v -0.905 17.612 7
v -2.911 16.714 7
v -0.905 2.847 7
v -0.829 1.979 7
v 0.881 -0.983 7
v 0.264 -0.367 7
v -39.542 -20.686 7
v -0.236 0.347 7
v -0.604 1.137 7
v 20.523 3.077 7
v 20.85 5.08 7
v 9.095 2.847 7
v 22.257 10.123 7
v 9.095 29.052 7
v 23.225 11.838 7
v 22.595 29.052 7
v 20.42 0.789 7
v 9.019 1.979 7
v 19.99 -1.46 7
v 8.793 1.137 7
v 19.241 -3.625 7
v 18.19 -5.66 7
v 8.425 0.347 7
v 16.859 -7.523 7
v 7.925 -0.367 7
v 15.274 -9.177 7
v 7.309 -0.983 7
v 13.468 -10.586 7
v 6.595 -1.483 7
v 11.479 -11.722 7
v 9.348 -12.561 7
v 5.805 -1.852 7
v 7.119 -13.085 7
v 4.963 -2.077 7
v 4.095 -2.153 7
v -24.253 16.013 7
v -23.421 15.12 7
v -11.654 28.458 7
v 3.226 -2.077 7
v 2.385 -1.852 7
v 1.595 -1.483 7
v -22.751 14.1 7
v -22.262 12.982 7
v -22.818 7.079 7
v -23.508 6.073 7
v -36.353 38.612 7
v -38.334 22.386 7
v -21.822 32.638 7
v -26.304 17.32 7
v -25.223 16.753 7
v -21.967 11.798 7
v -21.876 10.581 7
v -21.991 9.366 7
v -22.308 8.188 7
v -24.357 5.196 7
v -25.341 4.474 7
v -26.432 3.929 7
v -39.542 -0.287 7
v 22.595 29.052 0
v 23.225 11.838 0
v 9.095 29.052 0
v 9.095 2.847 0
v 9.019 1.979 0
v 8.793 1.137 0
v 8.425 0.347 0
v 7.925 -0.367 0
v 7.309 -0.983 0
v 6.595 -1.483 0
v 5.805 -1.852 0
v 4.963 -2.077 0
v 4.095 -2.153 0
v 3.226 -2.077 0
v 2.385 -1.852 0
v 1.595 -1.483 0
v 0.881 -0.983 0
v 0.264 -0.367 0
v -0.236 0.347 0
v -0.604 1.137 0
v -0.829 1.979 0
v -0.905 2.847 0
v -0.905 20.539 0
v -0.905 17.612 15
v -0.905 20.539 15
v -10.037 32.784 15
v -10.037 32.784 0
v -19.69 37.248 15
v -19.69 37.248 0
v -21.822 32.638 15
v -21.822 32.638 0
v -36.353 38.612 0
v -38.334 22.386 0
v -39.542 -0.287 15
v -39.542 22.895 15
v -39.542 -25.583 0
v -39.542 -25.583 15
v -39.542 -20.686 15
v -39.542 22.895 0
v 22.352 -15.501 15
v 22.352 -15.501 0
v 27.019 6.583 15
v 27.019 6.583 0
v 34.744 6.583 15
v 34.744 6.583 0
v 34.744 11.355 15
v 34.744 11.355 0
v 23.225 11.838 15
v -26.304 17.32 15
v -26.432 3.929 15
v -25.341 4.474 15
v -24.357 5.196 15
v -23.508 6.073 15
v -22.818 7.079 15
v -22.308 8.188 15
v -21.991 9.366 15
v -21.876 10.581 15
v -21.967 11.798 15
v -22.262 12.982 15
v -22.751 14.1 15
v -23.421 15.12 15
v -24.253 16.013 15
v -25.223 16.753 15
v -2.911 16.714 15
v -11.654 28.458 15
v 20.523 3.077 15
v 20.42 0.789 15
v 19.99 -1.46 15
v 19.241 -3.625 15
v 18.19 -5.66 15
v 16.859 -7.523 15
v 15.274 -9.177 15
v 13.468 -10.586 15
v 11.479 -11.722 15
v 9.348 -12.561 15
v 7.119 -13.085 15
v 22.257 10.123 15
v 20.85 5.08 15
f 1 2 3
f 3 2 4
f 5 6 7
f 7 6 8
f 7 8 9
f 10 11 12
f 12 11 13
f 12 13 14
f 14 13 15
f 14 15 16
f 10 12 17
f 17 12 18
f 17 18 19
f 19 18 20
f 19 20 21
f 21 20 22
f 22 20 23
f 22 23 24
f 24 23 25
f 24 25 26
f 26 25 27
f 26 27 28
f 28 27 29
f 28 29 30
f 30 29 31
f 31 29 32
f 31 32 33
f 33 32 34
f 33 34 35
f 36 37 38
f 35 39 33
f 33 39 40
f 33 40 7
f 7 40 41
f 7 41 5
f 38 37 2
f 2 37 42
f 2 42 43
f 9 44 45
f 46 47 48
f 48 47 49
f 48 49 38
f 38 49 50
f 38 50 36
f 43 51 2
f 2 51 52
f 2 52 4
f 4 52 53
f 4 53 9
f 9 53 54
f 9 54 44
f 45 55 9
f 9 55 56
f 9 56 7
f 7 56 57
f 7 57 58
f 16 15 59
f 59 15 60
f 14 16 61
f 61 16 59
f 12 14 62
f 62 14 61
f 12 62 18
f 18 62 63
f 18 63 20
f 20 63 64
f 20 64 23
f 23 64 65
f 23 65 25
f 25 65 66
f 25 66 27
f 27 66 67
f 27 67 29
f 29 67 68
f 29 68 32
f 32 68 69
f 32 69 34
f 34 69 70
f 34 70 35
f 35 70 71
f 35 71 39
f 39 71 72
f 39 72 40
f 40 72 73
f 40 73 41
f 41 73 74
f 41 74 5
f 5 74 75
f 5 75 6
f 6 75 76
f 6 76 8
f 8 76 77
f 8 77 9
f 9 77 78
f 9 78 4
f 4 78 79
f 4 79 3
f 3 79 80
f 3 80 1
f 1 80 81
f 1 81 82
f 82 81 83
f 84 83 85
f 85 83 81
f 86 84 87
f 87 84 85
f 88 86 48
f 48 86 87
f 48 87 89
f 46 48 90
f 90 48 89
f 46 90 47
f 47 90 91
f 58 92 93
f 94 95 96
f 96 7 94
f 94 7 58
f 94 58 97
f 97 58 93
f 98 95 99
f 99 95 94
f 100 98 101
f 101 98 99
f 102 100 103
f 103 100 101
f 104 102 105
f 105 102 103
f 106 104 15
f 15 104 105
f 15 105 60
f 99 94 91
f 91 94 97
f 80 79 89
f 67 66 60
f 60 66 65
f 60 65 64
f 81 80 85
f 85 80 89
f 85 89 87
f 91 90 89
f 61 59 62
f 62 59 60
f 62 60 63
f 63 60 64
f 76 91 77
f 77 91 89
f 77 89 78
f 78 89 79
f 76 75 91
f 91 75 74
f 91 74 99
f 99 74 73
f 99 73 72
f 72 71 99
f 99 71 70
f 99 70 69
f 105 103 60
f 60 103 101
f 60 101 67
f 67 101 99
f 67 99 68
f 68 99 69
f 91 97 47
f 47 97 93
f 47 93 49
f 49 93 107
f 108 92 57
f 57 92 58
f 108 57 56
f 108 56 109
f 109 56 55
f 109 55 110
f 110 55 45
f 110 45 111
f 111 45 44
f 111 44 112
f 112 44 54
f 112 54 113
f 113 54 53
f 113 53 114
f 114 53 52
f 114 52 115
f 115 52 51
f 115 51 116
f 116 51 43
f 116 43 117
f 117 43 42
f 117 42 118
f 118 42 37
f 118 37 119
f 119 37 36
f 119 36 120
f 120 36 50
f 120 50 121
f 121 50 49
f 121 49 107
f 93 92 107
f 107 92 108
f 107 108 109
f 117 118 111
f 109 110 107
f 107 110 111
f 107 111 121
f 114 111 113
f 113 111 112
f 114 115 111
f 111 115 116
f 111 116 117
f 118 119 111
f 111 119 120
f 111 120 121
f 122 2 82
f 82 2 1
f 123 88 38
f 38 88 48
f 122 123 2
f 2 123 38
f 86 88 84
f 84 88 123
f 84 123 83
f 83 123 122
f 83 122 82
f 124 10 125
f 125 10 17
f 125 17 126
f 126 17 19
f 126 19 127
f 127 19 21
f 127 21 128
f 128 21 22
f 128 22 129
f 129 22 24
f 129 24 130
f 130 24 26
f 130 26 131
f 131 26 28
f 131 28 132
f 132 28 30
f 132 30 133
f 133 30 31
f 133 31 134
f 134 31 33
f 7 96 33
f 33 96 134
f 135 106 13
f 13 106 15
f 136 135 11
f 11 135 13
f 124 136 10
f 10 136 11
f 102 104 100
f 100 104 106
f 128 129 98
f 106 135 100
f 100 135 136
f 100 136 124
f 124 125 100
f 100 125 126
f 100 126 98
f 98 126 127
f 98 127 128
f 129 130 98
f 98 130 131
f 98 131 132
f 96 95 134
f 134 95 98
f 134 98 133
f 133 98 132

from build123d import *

# Parameters (mm, degrees)
BOSS_EXTRUDE2_DEPTH = 7
BOSS_EXTRUDE3_DEPTH = 15


with BuildPart() as part:
    # Sketch1 → Boss-Extrude2 (new body)
    with BuildSketch(Plane.XY):
        with BuildLine():
            Line((-39.542433315, -25.583271541), (22.35186865, -15.501296132))
            Line((22.35186865, -15.501296132), (27.018997021, 6.583034036))
            Line((27.018997021, 6.583034036), (34.744303123, 6.583034036))
            Line((34.744303123, 6.583034036), (34.744303123, 11.354641566))
            Line((34.744303123, 11.354641566), (23.2245968, 11.838054321))
            Line((23.2245968, 11.838054321), (22.594616957, 29.052034329))
            Line((22.594616957, 29.052034329), (9.094616957, 29.052034329))
            Line((9.094616957, 29.052034329), (9.094616957, 2.846901584))
            ThreePointArc((9.094616957, 2.846901584), (4.094616957, -2.153098416), (-0.905383043, 2.846901584))
            Line((-0.905383043, 2.846901584), (-0.905383043, 20.539136331))
            Line((-0.905383043, 20.539136331), (-10.036820206, 32.783811613))
            Line((-10.036820206, 32.783811613), (-19.690097484, 37.247946124))
            Line((-19.690097484, 37.247946124), (-21.821876557, 32.638171386))
            Line((-21.821876557, 32.638171386), (-36.353312831, 38.611972459))
            Line((-36.353312831, 38.611972459), (-39.542433315, 12.487268255))
            Line((-39.542433315, 12.487268255), (-39.542433315, -25.583271541))
        make_face()
    extrude(amount=BOSS_EXTRUDE2_DEPTH)

    # Sketch1<7> → Boss-Extrude3 (add)
    with BuildSketch(Plane.XY):
        with BuildLine():
            ThreePointArc((-2.910814831, 16.713787882), (-1.923594587, 17.19744001), (-0.905383043, 17.611889578))
            Line((-0.905383043, 17.611889578), (-0.905383043, 20.539136331))
            Line((-0.905383043, 20.539136331), (-10.036820206, 32.783811613))
            Line((-10.036820206, 32.783811613), (-19.690097484, 37.247946124))
            Line((-19.690097484, 37.247946124), (-21.821876557, 32.638171386))
            Line((-21.821876557, 32.638171386), (-11.654155817, 28.458272035))
            Line((-11.654155817, 28.458272035), (-2.910814831, 16.713787882))
        make_face()
        with BuildLine():
            ThreePointArc((20.523303512, 3.077207951), (16.858734445, -7.523493754), (7.118615678, -13.085330635))
            Line((7.118615678, -13.085330635), (-39.542433315, -20.685958376))
            Line((-39.542433315, -20.685958376), (-39.542433315, -25.583271541))
            Line((-39.542433315, -25.583271541), (22.35186865, -15.501296132))
            Line((22.35186865, -15.501296132), (27.018997021, 6.583034036))
            Line((27.018997021, 6.583034036), (34.744303123, 6.583034036))
            Line((34.744303123, 6.583034036), (34.744303123, 11.354641566))
            Line((34.744303123, 11.354641566), (23.2245968, 11.838054321))
            Line((23.2245968, 11.838054321), (22.257186267, 10.122973627))
            Line((22.257186267, 10.122973627), (20.850125794, 5.080010211))
            Line((20.850125794, 5.080010211), (20.523303512, 3.077207951))
        make_face()
        with BuildLine():
            Line((-26.303625242, 17.319658526), (-39.542433315, 22.895355765))
            Line((-39.542433315, 22.895355765), (-39.542433315, -0.287420009))
            Line((-39.542433315, -0.287420009), (-26.432254104, 3.928552647))
            ThreePointArc((-26.432254104, 3.928552647), (-21.876232947, 10.580960298), (-26.303625242, 17.319658526))
        make_face()
    extrude(amount=BOSS_EXTRUDE3_DEPTH)


solid = part.part
